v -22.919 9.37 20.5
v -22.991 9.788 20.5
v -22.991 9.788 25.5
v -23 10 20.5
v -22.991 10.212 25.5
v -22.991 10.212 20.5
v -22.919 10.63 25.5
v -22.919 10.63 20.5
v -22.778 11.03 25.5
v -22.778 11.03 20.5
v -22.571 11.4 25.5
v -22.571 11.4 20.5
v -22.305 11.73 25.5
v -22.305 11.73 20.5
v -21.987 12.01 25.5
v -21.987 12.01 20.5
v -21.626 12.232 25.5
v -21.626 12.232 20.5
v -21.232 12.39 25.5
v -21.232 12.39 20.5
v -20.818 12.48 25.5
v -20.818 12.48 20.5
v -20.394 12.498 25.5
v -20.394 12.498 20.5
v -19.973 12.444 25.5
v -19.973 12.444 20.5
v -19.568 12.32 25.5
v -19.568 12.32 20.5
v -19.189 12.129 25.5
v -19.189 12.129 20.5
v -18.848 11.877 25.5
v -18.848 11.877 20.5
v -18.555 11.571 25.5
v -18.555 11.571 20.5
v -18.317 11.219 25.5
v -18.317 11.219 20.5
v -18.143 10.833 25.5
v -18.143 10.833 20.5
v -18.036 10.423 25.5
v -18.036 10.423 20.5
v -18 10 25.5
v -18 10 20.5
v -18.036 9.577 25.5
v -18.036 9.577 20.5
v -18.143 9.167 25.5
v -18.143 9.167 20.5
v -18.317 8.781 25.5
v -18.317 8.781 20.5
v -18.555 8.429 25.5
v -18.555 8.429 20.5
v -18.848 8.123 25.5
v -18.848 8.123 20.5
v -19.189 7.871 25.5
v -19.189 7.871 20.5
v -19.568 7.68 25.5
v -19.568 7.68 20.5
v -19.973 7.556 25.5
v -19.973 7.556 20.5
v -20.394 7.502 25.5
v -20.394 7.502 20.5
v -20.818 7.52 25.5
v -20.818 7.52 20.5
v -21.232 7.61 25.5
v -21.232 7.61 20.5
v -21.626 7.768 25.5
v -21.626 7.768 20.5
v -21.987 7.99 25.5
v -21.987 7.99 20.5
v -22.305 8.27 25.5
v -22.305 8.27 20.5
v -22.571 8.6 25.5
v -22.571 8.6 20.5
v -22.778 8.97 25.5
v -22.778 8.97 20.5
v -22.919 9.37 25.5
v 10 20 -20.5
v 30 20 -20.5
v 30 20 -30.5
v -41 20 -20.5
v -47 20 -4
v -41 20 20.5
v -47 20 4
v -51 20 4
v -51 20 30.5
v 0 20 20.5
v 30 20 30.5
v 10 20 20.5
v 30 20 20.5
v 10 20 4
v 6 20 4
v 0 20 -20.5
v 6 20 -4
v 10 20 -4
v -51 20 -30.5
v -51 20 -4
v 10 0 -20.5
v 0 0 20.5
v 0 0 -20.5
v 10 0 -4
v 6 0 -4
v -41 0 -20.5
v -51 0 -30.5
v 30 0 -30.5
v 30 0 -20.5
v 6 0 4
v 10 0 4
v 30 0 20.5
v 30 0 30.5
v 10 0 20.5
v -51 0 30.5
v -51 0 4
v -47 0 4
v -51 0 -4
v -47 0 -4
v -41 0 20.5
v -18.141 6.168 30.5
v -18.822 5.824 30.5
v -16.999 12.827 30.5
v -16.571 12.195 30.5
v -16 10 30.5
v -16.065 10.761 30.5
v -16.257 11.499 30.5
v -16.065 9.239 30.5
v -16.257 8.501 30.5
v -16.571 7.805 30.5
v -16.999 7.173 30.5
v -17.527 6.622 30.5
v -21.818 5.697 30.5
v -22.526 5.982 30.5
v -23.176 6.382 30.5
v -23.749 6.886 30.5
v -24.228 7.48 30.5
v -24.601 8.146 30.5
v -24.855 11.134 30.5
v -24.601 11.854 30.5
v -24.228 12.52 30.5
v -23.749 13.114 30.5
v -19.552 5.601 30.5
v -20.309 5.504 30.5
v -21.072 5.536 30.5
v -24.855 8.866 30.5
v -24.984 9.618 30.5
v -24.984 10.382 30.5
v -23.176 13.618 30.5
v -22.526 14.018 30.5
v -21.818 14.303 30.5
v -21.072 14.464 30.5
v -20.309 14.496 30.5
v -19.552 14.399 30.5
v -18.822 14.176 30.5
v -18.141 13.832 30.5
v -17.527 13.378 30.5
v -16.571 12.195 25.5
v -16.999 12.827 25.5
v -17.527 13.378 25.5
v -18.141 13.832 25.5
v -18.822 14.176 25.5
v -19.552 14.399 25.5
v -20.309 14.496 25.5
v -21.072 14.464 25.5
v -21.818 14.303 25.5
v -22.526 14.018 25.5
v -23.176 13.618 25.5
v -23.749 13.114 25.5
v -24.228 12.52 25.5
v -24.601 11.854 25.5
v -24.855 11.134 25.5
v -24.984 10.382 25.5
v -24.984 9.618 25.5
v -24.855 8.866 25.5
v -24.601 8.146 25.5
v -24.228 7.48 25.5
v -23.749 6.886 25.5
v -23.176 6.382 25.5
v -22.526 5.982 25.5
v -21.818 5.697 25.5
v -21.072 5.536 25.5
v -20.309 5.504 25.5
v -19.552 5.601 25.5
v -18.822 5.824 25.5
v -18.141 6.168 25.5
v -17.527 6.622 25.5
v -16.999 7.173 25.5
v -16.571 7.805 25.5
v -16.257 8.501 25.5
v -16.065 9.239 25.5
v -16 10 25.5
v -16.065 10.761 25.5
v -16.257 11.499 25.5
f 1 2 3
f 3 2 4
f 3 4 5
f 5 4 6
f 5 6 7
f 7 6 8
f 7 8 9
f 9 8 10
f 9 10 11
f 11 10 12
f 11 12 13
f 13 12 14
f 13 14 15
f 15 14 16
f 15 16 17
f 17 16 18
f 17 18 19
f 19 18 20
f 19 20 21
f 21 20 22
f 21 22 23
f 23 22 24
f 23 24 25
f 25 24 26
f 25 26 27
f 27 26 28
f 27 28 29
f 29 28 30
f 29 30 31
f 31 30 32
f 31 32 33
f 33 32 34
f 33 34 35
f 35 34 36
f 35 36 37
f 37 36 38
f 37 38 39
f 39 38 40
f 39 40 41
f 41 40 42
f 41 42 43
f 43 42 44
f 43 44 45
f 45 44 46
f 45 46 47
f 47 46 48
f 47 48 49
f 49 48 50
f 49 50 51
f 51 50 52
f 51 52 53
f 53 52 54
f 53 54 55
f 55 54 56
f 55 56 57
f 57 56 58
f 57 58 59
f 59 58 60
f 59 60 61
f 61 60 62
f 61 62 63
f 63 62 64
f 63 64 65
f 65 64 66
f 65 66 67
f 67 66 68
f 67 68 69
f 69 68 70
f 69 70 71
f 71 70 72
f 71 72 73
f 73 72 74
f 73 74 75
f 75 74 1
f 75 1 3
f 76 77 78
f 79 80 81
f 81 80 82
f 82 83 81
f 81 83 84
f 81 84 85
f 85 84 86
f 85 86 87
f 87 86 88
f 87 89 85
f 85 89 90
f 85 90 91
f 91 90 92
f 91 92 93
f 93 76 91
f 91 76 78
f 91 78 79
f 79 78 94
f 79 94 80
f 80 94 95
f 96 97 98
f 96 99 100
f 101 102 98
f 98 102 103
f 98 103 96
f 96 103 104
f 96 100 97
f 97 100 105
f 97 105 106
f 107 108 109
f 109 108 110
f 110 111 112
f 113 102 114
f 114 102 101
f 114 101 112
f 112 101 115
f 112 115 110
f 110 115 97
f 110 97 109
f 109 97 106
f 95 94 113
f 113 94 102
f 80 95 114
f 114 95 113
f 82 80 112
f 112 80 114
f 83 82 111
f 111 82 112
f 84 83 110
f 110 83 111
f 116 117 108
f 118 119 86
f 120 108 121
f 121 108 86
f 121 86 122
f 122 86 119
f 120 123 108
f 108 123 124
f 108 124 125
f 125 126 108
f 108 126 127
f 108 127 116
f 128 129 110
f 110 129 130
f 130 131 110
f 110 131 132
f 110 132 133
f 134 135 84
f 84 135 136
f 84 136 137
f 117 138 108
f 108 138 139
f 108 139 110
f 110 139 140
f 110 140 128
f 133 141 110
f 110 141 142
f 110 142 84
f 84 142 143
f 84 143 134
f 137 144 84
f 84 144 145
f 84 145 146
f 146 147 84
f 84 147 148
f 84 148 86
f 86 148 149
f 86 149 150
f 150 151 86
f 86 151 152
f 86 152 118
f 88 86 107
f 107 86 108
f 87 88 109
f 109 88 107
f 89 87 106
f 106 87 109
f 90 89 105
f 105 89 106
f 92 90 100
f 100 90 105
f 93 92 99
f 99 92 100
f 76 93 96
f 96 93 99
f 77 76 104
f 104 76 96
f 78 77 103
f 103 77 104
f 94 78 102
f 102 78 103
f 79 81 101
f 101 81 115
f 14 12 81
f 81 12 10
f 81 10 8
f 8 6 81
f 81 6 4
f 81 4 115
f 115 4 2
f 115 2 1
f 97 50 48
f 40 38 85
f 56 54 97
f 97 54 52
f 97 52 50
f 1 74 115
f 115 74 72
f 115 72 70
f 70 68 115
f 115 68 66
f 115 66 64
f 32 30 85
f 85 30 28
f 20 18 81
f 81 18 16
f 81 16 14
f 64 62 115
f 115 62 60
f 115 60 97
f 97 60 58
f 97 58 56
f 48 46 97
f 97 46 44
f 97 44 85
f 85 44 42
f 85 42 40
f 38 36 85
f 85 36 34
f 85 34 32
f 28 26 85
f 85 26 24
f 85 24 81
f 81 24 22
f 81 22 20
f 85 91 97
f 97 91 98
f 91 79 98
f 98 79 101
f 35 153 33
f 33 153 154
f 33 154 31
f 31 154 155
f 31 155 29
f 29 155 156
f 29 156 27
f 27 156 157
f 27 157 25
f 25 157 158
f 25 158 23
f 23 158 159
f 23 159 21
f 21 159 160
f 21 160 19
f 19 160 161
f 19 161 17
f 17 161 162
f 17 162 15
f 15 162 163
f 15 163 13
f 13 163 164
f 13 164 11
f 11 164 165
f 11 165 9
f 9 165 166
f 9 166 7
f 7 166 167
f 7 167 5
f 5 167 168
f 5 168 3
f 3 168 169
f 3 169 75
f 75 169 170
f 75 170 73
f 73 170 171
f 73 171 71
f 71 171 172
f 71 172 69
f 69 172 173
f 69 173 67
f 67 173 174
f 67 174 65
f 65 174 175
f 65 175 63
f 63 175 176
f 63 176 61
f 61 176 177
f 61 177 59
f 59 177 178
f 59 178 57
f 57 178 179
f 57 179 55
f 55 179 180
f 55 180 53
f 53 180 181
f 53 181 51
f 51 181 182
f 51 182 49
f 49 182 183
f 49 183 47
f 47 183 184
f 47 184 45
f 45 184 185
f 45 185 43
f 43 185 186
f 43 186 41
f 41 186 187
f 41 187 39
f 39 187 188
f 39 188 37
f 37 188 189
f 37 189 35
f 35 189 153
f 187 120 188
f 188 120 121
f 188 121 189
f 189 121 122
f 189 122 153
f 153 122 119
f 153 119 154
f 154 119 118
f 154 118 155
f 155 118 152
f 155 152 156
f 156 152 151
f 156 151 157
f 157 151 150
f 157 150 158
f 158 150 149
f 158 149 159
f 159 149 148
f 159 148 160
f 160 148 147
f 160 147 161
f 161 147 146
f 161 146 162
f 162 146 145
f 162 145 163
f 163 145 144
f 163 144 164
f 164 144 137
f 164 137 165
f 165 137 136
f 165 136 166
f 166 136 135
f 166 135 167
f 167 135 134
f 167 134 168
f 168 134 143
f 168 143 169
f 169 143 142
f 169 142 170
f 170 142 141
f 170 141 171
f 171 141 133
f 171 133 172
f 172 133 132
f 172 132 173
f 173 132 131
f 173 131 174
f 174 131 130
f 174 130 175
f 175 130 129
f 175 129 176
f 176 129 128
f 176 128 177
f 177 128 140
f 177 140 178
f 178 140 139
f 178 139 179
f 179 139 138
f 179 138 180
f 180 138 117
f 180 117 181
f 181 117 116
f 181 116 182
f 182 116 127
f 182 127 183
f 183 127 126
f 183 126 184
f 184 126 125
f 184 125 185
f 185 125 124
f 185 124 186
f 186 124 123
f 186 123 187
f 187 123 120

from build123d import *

# Parameters (mm, degrees)
SKETCH1_W           = 41
SKETCH1_H           = 41
BOSS_EXTRUDE1_DEPTH = 20
SKETCH2_R           = 2.5
CUT_EXTRUDE1_DEPTH  = 40
SKETCH3_R           = 4.5
CUT_EXTRUDE2_DEPTH  = 5


with BuildPart() as part:
    # Sketch1 → Boss-Extrude1 (new body)
    with BuildSketch(Plane(origin=(0, 0, 0), x_dir=(1, 0, 0), z_dir=(0, 1, 0))):
        Polygon((-51, 30.5), (10, 30.5), (30, 30.5), (30, 20.5), (10, 20.5), (10, 4), (6, 4), (6, -4), (10, -4), (10, -20.5), (30, -20.5), (30, -30.5), (10, -30.5), (-51, -30.5), (-51, -4), (-47, -4), (-47, 4), (-51, 4), align=None)
        with Locations((-20.5, 0)):
            Rectangle(SKETCH1_W, SKETCH1_H, mode=Mode.SUBTRACT)
    extrude(amount=BOSS_EXTRUDE1_DEPTH)

    # Sketch2 → Cut-Extrude1 (cut)
    with BuildSketch(Plane.XY.offset(30.5)):
        with Locations((-20.5, 10)):
            Circle(SKETCH2_R)
    extrude(amount=-CUT_EXTRUDE1_DEPTH, mode=Mode.SUBTRACT)

    # Sketch3 → Cut-Extrude2 (cut)
    with BuildSketch(Plane.XY.offset(30.5)):
        with Locations((-20.5, 10)):
            Circle(SKETCH3_R)
    extrude(amount=-CUT_EXTRUDE2_DEPTH, mode=Mode.SUBTRACT)


solid = part.part
